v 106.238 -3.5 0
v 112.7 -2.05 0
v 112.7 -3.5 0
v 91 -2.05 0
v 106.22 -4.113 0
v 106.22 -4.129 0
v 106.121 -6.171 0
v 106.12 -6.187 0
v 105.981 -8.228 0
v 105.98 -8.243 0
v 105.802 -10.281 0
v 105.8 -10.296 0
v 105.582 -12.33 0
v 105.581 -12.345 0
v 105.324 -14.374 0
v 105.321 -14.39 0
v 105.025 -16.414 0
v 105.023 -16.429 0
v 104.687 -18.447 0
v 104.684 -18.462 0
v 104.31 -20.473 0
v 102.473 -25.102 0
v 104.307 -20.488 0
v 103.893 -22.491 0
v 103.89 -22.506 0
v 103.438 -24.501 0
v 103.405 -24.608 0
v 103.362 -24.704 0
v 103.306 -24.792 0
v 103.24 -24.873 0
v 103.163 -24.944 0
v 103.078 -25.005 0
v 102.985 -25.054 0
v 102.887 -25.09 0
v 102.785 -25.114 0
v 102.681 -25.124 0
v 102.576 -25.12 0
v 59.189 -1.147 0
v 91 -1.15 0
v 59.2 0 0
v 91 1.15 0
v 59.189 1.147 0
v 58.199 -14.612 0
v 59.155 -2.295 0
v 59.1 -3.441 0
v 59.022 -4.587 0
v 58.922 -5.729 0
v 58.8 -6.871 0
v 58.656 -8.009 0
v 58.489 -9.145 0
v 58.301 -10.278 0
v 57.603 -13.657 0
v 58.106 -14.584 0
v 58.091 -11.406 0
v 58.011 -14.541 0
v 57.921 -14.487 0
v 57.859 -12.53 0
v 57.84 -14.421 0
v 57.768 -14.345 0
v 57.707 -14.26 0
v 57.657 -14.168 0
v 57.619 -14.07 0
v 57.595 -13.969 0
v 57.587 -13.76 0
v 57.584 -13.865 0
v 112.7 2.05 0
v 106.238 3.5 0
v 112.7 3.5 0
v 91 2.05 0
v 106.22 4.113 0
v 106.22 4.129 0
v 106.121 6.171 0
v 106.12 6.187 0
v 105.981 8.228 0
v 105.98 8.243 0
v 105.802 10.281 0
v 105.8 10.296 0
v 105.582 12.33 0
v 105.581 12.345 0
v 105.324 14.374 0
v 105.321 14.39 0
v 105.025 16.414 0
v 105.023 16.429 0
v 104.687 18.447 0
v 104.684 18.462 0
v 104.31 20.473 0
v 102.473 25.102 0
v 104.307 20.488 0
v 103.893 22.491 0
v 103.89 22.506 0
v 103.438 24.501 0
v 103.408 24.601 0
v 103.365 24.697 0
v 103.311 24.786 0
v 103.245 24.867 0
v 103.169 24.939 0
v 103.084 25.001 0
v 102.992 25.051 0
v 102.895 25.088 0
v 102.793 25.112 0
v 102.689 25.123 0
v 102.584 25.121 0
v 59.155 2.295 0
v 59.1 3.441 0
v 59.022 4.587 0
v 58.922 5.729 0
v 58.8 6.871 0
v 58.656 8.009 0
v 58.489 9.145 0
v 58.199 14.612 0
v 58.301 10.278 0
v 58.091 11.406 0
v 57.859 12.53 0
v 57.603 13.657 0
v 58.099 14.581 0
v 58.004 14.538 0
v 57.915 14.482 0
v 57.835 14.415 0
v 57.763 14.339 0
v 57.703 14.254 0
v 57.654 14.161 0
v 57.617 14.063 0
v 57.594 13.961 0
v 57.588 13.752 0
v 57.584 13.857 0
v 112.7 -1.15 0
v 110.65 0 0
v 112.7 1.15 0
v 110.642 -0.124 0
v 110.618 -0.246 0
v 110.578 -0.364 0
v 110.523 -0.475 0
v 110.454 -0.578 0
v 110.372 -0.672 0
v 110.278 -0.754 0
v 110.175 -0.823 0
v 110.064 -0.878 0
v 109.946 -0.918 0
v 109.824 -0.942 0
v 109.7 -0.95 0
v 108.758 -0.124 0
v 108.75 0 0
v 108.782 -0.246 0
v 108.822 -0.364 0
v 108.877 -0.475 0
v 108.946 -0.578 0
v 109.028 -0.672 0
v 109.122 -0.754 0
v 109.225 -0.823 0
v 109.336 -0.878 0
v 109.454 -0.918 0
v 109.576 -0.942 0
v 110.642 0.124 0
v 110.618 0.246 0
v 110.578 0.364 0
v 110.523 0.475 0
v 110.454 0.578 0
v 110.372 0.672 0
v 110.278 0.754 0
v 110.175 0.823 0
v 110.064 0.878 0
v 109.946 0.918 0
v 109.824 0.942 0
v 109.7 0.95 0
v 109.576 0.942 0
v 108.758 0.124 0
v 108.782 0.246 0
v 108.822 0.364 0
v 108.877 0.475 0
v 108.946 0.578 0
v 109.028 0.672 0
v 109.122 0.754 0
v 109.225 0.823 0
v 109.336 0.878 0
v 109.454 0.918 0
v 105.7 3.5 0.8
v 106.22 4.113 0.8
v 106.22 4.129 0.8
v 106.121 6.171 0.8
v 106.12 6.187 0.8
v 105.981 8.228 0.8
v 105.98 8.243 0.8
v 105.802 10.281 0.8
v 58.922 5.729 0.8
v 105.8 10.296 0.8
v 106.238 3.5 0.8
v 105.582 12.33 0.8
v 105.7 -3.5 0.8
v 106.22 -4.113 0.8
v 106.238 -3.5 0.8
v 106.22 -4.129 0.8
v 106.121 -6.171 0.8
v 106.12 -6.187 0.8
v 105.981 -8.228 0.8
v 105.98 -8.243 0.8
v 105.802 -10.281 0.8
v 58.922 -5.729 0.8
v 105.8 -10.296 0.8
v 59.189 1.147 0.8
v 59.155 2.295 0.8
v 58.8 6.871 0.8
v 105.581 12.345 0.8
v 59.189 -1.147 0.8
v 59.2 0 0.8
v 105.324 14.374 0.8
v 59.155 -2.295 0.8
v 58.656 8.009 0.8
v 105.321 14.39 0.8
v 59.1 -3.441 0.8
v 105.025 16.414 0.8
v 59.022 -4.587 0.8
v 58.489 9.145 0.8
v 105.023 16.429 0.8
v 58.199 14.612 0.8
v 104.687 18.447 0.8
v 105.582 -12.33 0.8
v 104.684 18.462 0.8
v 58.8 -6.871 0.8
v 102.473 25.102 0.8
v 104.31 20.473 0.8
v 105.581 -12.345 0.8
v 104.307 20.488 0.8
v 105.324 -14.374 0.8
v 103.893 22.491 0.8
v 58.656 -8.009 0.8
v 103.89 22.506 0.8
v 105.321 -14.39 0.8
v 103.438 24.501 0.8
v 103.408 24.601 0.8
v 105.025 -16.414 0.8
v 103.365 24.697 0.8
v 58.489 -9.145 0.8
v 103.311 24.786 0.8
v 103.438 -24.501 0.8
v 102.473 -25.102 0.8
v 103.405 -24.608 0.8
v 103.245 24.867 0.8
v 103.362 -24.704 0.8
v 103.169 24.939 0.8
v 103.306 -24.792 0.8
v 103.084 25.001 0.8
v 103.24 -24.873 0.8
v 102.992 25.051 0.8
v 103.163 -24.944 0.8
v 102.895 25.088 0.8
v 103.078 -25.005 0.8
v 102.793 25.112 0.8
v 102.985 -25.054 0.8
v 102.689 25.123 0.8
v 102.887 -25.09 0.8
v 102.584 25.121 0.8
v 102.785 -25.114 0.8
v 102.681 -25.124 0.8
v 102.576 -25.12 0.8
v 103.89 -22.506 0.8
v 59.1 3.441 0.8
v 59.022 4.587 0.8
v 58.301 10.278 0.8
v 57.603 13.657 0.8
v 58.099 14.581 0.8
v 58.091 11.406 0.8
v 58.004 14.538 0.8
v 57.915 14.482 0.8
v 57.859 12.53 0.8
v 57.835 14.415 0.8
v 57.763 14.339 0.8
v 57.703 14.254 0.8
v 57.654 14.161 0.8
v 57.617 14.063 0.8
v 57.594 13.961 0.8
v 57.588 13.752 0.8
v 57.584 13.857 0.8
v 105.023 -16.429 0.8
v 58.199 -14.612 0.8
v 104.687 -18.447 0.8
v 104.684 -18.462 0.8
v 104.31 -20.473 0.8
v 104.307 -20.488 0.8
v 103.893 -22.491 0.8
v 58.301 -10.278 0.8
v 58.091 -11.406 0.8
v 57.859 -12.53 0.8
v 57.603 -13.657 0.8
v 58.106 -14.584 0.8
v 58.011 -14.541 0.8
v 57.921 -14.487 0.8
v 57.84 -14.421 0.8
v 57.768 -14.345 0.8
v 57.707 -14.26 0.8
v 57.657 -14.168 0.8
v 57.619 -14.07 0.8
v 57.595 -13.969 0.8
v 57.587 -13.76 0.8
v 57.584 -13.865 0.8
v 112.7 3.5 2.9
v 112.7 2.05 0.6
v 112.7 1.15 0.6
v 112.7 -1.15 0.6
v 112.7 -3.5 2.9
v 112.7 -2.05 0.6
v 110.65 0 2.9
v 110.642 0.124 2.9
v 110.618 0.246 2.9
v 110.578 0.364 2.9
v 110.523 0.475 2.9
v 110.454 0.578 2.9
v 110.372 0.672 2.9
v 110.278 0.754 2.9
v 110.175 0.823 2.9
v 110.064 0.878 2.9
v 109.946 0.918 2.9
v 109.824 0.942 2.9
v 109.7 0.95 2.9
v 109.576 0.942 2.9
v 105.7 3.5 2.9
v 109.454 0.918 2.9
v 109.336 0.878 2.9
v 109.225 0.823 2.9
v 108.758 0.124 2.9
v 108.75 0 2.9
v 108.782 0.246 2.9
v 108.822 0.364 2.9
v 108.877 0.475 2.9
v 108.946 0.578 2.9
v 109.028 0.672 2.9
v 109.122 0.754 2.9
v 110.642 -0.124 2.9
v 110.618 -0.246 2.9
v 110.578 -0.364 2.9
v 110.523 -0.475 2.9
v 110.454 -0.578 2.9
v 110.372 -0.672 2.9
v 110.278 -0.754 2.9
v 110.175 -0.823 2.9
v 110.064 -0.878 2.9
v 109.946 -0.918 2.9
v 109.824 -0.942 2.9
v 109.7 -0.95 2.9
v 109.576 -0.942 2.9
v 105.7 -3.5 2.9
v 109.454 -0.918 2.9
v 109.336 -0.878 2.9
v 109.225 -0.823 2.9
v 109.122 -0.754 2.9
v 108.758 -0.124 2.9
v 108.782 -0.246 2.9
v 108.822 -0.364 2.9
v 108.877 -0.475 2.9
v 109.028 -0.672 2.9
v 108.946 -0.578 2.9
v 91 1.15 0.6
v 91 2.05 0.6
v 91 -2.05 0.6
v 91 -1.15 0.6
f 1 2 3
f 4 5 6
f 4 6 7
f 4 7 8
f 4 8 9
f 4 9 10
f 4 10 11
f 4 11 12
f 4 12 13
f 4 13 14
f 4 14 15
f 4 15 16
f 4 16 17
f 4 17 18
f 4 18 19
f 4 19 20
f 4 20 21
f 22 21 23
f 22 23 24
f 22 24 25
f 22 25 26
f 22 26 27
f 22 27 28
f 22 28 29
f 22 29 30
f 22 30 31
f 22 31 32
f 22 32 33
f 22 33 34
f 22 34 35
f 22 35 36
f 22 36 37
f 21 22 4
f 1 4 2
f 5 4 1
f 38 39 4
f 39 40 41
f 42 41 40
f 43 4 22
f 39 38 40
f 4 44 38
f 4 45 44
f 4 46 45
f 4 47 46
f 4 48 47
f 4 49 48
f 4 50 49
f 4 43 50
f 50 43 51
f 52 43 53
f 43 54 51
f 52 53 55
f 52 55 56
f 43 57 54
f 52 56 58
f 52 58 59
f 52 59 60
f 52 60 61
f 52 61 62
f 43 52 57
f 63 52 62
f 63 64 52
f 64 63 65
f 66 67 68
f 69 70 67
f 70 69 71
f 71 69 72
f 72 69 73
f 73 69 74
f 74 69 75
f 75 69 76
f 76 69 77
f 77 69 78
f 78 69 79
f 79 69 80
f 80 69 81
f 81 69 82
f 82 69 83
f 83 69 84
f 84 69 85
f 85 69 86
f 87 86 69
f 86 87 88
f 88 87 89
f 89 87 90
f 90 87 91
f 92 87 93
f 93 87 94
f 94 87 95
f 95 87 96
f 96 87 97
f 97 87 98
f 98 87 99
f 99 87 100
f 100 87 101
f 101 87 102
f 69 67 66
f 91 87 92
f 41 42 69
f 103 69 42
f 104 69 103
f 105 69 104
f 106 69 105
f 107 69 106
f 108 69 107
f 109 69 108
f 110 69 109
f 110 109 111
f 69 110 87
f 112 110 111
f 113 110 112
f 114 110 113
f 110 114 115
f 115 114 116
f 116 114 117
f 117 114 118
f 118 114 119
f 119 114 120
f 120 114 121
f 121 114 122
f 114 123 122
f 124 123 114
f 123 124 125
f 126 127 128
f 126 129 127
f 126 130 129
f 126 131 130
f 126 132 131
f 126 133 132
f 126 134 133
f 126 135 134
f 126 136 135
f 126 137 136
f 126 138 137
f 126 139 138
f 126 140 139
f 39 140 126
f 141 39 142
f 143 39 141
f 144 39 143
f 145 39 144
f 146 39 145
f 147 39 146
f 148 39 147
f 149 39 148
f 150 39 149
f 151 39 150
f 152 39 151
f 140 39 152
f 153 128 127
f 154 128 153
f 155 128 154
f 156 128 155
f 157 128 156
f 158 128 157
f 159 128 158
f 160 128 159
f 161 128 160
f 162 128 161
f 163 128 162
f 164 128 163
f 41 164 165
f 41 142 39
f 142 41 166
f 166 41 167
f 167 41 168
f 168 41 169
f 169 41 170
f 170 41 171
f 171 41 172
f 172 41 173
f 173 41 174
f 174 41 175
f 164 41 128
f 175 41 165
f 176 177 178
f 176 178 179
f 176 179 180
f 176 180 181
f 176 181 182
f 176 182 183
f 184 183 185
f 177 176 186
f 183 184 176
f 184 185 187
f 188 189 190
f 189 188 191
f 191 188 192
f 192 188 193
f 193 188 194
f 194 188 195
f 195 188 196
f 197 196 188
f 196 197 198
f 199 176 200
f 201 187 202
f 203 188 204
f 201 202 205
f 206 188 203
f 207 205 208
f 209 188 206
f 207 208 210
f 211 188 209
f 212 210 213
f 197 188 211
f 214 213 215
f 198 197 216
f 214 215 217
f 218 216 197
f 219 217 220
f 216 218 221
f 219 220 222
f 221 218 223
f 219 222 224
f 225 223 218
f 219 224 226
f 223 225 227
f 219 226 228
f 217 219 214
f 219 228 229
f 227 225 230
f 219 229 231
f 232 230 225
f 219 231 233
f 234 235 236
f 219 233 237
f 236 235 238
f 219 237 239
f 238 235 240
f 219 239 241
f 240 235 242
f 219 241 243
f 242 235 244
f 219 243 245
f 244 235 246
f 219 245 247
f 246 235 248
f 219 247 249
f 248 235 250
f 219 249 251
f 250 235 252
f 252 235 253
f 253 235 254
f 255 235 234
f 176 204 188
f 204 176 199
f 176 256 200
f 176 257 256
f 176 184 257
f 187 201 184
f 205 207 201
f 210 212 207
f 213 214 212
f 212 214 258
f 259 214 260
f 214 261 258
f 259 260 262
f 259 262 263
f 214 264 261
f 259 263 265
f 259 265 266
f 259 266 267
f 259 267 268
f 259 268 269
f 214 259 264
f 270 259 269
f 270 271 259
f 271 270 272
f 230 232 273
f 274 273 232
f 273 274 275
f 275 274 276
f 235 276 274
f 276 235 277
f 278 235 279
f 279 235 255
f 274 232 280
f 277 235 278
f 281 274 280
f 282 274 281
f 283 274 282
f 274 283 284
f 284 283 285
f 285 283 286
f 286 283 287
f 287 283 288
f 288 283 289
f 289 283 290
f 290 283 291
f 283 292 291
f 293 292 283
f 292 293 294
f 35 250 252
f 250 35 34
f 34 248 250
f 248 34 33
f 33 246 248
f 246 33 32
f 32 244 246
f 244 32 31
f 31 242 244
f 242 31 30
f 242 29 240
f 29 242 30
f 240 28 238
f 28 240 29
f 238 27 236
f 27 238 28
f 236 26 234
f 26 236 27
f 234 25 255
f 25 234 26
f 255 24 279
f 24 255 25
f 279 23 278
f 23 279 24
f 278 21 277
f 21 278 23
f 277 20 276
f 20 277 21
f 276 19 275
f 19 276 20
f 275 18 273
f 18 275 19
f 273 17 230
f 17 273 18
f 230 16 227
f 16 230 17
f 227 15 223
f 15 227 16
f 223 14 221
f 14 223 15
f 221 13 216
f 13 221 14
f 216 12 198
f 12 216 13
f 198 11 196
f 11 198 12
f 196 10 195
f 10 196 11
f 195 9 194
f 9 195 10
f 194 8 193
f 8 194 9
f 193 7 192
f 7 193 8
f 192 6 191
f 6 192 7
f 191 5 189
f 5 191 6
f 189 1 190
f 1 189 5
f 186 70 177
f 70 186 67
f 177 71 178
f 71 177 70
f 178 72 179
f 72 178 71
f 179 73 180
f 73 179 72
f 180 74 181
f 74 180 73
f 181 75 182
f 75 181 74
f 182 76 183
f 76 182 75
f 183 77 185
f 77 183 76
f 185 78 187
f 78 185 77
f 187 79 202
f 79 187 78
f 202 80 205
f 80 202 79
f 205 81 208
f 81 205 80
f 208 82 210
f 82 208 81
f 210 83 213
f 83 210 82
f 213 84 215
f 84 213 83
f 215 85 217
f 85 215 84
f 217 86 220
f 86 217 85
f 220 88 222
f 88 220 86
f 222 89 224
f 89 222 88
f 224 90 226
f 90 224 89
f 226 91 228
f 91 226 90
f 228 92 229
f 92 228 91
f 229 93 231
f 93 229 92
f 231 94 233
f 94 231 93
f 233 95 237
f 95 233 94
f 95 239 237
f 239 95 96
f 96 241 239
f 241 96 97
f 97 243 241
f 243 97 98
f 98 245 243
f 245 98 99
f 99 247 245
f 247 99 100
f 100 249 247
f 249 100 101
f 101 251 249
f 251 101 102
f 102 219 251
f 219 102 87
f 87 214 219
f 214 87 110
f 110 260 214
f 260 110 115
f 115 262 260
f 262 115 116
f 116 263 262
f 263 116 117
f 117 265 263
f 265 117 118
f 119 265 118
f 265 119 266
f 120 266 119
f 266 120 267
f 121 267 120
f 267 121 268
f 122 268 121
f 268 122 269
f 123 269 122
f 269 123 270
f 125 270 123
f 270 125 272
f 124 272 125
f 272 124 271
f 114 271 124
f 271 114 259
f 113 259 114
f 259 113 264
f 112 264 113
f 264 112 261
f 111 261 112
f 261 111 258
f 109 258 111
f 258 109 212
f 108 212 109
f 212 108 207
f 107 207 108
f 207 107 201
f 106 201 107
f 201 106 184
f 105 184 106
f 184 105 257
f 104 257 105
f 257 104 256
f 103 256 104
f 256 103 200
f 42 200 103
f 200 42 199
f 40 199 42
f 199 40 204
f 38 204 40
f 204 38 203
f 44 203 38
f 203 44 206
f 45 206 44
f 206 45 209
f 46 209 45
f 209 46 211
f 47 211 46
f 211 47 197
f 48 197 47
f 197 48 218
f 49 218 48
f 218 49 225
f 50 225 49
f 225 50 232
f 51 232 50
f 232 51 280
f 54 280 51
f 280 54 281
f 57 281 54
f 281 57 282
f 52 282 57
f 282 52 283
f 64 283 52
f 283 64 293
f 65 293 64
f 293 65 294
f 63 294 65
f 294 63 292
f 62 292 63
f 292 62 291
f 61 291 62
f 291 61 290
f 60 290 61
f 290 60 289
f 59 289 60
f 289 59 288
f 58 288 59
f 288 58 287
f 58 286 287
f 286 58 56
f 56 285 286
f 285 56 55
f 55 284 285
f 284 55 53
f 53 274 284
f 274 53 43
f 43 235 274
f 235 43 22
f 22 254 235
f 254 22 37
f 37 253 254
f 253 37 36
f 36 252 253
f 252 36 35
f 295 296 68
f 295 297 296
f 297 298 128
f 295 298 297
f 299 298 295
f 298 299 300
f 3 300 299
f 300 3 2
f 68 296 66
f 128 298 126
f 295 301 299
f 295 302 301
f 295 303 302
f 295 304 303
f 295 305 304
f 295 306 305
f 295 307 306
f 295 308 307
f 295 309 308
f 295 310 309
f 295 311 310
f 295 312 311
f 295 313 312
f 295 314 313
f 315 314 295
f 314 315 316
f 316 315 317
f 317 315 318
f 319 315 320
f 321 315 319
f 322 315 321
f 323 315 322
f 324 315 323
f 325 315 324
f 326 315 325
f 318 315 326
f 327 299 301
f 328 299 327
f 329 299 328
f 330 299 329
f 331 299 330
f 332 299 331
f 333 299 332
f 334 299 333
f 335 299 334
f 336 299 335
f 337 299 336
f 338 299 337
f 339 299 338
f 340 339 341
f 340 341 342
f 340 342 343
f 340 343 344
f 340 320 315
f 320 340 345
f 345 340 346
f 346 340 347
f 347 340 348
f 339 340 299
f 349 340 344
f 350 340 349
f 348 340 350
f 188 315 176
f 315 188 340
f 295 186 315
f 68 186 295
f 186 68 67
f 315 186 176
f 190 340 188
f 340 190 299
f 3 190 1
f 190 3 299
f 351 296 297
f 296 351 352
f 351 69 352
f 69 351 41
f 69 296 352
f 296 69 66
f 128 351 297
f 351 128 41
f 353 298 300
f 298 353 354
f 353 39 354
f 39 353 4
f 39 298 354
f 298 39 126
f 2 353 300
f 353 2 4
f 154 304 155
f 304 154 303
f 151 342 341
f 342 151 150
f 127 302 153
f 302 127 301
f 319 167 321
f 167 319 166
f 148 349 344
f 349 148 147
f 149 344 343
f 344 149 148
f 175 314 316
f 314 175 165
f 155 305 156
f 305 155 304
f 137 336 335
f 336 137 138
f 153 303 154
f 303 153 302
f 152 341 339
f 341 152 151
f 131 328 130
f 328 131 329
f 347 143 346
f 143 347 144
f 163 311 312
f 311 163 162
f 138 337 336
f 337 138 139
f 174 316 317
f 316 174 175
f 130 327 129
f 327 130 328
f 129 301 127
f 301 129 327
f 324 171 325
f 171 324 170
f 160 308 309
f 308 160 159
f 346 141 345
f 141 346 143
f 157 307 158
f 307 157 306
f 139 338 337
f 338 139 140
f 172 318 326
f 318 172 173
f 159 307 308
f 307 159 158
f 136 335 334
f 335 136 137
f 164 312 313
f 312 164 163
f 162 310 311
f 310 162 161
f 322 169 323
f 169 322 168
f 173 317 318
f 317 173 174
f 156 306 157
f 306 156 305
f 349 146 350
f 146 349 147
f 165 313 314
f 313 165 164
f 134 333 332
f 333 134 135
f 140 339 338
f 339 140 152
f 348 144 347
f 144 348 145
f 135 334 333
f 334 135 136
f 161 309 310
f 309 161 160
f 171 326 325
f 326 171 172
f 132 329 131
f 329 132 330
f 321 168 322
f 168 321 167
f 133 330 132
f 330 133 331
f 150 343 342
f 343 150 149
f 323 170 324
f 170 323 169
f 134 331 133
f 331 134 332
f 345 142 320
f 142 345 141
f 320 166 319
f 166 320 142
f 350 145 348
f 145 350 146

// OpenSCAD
// Gen-CQ — bobbin LID (top flange + locating tab). Print x12, flange face DOWN on the bed.
// CA-glue onto the hub top BEFORE winding. Tab = lap joint into the stator tab pocket; 1.75 mm filament
// pin through pin hole + stator ledge, trim flush. Lead slots carry both leads flush.
include <parameters.scad>;
$fn = 48;
module sector_2d(r_in, r_out, ang) {
    polygon([
        for (a = [-ang/2 : ang/24 : ang/2]) [r_in*cos(a), r_in*sin(a)],
        for (a = [ang/2 : -ang/24 : -ang/2]) [r_out*cos(a), r_out*sin(a)]
    ]);
}
module footprint_2d() { offset(r=wall) sector_2d(coil_id_r, coil_od_r, span_deg); }
module hub_2d()       { offset(delta=-coil_core_inset) sector_2d(coil_id_r, coil_od_r, span_deg); }

difference() {
    union() {
        linear_extrude(flange_t) footprint_2d();
        translate([coil_od_r + 0.2, -tab_w/2, 0]) cube([tab_len, tab_w, tab_h]);
    }
    translate([coil_mount_r, 0, -0.1]) cylinder(d=pin_d, h=tab_h + 1);
    for (y = [lead_y, -lead_y])
        translate([coil_od_r - coil_core_inset - 0.5, y - lead_slot_w/2, -0.1])
            cube([coil_core_inset + tab_len + 2, lead_slot_w, lead_groove_d + 0.1]);
}
